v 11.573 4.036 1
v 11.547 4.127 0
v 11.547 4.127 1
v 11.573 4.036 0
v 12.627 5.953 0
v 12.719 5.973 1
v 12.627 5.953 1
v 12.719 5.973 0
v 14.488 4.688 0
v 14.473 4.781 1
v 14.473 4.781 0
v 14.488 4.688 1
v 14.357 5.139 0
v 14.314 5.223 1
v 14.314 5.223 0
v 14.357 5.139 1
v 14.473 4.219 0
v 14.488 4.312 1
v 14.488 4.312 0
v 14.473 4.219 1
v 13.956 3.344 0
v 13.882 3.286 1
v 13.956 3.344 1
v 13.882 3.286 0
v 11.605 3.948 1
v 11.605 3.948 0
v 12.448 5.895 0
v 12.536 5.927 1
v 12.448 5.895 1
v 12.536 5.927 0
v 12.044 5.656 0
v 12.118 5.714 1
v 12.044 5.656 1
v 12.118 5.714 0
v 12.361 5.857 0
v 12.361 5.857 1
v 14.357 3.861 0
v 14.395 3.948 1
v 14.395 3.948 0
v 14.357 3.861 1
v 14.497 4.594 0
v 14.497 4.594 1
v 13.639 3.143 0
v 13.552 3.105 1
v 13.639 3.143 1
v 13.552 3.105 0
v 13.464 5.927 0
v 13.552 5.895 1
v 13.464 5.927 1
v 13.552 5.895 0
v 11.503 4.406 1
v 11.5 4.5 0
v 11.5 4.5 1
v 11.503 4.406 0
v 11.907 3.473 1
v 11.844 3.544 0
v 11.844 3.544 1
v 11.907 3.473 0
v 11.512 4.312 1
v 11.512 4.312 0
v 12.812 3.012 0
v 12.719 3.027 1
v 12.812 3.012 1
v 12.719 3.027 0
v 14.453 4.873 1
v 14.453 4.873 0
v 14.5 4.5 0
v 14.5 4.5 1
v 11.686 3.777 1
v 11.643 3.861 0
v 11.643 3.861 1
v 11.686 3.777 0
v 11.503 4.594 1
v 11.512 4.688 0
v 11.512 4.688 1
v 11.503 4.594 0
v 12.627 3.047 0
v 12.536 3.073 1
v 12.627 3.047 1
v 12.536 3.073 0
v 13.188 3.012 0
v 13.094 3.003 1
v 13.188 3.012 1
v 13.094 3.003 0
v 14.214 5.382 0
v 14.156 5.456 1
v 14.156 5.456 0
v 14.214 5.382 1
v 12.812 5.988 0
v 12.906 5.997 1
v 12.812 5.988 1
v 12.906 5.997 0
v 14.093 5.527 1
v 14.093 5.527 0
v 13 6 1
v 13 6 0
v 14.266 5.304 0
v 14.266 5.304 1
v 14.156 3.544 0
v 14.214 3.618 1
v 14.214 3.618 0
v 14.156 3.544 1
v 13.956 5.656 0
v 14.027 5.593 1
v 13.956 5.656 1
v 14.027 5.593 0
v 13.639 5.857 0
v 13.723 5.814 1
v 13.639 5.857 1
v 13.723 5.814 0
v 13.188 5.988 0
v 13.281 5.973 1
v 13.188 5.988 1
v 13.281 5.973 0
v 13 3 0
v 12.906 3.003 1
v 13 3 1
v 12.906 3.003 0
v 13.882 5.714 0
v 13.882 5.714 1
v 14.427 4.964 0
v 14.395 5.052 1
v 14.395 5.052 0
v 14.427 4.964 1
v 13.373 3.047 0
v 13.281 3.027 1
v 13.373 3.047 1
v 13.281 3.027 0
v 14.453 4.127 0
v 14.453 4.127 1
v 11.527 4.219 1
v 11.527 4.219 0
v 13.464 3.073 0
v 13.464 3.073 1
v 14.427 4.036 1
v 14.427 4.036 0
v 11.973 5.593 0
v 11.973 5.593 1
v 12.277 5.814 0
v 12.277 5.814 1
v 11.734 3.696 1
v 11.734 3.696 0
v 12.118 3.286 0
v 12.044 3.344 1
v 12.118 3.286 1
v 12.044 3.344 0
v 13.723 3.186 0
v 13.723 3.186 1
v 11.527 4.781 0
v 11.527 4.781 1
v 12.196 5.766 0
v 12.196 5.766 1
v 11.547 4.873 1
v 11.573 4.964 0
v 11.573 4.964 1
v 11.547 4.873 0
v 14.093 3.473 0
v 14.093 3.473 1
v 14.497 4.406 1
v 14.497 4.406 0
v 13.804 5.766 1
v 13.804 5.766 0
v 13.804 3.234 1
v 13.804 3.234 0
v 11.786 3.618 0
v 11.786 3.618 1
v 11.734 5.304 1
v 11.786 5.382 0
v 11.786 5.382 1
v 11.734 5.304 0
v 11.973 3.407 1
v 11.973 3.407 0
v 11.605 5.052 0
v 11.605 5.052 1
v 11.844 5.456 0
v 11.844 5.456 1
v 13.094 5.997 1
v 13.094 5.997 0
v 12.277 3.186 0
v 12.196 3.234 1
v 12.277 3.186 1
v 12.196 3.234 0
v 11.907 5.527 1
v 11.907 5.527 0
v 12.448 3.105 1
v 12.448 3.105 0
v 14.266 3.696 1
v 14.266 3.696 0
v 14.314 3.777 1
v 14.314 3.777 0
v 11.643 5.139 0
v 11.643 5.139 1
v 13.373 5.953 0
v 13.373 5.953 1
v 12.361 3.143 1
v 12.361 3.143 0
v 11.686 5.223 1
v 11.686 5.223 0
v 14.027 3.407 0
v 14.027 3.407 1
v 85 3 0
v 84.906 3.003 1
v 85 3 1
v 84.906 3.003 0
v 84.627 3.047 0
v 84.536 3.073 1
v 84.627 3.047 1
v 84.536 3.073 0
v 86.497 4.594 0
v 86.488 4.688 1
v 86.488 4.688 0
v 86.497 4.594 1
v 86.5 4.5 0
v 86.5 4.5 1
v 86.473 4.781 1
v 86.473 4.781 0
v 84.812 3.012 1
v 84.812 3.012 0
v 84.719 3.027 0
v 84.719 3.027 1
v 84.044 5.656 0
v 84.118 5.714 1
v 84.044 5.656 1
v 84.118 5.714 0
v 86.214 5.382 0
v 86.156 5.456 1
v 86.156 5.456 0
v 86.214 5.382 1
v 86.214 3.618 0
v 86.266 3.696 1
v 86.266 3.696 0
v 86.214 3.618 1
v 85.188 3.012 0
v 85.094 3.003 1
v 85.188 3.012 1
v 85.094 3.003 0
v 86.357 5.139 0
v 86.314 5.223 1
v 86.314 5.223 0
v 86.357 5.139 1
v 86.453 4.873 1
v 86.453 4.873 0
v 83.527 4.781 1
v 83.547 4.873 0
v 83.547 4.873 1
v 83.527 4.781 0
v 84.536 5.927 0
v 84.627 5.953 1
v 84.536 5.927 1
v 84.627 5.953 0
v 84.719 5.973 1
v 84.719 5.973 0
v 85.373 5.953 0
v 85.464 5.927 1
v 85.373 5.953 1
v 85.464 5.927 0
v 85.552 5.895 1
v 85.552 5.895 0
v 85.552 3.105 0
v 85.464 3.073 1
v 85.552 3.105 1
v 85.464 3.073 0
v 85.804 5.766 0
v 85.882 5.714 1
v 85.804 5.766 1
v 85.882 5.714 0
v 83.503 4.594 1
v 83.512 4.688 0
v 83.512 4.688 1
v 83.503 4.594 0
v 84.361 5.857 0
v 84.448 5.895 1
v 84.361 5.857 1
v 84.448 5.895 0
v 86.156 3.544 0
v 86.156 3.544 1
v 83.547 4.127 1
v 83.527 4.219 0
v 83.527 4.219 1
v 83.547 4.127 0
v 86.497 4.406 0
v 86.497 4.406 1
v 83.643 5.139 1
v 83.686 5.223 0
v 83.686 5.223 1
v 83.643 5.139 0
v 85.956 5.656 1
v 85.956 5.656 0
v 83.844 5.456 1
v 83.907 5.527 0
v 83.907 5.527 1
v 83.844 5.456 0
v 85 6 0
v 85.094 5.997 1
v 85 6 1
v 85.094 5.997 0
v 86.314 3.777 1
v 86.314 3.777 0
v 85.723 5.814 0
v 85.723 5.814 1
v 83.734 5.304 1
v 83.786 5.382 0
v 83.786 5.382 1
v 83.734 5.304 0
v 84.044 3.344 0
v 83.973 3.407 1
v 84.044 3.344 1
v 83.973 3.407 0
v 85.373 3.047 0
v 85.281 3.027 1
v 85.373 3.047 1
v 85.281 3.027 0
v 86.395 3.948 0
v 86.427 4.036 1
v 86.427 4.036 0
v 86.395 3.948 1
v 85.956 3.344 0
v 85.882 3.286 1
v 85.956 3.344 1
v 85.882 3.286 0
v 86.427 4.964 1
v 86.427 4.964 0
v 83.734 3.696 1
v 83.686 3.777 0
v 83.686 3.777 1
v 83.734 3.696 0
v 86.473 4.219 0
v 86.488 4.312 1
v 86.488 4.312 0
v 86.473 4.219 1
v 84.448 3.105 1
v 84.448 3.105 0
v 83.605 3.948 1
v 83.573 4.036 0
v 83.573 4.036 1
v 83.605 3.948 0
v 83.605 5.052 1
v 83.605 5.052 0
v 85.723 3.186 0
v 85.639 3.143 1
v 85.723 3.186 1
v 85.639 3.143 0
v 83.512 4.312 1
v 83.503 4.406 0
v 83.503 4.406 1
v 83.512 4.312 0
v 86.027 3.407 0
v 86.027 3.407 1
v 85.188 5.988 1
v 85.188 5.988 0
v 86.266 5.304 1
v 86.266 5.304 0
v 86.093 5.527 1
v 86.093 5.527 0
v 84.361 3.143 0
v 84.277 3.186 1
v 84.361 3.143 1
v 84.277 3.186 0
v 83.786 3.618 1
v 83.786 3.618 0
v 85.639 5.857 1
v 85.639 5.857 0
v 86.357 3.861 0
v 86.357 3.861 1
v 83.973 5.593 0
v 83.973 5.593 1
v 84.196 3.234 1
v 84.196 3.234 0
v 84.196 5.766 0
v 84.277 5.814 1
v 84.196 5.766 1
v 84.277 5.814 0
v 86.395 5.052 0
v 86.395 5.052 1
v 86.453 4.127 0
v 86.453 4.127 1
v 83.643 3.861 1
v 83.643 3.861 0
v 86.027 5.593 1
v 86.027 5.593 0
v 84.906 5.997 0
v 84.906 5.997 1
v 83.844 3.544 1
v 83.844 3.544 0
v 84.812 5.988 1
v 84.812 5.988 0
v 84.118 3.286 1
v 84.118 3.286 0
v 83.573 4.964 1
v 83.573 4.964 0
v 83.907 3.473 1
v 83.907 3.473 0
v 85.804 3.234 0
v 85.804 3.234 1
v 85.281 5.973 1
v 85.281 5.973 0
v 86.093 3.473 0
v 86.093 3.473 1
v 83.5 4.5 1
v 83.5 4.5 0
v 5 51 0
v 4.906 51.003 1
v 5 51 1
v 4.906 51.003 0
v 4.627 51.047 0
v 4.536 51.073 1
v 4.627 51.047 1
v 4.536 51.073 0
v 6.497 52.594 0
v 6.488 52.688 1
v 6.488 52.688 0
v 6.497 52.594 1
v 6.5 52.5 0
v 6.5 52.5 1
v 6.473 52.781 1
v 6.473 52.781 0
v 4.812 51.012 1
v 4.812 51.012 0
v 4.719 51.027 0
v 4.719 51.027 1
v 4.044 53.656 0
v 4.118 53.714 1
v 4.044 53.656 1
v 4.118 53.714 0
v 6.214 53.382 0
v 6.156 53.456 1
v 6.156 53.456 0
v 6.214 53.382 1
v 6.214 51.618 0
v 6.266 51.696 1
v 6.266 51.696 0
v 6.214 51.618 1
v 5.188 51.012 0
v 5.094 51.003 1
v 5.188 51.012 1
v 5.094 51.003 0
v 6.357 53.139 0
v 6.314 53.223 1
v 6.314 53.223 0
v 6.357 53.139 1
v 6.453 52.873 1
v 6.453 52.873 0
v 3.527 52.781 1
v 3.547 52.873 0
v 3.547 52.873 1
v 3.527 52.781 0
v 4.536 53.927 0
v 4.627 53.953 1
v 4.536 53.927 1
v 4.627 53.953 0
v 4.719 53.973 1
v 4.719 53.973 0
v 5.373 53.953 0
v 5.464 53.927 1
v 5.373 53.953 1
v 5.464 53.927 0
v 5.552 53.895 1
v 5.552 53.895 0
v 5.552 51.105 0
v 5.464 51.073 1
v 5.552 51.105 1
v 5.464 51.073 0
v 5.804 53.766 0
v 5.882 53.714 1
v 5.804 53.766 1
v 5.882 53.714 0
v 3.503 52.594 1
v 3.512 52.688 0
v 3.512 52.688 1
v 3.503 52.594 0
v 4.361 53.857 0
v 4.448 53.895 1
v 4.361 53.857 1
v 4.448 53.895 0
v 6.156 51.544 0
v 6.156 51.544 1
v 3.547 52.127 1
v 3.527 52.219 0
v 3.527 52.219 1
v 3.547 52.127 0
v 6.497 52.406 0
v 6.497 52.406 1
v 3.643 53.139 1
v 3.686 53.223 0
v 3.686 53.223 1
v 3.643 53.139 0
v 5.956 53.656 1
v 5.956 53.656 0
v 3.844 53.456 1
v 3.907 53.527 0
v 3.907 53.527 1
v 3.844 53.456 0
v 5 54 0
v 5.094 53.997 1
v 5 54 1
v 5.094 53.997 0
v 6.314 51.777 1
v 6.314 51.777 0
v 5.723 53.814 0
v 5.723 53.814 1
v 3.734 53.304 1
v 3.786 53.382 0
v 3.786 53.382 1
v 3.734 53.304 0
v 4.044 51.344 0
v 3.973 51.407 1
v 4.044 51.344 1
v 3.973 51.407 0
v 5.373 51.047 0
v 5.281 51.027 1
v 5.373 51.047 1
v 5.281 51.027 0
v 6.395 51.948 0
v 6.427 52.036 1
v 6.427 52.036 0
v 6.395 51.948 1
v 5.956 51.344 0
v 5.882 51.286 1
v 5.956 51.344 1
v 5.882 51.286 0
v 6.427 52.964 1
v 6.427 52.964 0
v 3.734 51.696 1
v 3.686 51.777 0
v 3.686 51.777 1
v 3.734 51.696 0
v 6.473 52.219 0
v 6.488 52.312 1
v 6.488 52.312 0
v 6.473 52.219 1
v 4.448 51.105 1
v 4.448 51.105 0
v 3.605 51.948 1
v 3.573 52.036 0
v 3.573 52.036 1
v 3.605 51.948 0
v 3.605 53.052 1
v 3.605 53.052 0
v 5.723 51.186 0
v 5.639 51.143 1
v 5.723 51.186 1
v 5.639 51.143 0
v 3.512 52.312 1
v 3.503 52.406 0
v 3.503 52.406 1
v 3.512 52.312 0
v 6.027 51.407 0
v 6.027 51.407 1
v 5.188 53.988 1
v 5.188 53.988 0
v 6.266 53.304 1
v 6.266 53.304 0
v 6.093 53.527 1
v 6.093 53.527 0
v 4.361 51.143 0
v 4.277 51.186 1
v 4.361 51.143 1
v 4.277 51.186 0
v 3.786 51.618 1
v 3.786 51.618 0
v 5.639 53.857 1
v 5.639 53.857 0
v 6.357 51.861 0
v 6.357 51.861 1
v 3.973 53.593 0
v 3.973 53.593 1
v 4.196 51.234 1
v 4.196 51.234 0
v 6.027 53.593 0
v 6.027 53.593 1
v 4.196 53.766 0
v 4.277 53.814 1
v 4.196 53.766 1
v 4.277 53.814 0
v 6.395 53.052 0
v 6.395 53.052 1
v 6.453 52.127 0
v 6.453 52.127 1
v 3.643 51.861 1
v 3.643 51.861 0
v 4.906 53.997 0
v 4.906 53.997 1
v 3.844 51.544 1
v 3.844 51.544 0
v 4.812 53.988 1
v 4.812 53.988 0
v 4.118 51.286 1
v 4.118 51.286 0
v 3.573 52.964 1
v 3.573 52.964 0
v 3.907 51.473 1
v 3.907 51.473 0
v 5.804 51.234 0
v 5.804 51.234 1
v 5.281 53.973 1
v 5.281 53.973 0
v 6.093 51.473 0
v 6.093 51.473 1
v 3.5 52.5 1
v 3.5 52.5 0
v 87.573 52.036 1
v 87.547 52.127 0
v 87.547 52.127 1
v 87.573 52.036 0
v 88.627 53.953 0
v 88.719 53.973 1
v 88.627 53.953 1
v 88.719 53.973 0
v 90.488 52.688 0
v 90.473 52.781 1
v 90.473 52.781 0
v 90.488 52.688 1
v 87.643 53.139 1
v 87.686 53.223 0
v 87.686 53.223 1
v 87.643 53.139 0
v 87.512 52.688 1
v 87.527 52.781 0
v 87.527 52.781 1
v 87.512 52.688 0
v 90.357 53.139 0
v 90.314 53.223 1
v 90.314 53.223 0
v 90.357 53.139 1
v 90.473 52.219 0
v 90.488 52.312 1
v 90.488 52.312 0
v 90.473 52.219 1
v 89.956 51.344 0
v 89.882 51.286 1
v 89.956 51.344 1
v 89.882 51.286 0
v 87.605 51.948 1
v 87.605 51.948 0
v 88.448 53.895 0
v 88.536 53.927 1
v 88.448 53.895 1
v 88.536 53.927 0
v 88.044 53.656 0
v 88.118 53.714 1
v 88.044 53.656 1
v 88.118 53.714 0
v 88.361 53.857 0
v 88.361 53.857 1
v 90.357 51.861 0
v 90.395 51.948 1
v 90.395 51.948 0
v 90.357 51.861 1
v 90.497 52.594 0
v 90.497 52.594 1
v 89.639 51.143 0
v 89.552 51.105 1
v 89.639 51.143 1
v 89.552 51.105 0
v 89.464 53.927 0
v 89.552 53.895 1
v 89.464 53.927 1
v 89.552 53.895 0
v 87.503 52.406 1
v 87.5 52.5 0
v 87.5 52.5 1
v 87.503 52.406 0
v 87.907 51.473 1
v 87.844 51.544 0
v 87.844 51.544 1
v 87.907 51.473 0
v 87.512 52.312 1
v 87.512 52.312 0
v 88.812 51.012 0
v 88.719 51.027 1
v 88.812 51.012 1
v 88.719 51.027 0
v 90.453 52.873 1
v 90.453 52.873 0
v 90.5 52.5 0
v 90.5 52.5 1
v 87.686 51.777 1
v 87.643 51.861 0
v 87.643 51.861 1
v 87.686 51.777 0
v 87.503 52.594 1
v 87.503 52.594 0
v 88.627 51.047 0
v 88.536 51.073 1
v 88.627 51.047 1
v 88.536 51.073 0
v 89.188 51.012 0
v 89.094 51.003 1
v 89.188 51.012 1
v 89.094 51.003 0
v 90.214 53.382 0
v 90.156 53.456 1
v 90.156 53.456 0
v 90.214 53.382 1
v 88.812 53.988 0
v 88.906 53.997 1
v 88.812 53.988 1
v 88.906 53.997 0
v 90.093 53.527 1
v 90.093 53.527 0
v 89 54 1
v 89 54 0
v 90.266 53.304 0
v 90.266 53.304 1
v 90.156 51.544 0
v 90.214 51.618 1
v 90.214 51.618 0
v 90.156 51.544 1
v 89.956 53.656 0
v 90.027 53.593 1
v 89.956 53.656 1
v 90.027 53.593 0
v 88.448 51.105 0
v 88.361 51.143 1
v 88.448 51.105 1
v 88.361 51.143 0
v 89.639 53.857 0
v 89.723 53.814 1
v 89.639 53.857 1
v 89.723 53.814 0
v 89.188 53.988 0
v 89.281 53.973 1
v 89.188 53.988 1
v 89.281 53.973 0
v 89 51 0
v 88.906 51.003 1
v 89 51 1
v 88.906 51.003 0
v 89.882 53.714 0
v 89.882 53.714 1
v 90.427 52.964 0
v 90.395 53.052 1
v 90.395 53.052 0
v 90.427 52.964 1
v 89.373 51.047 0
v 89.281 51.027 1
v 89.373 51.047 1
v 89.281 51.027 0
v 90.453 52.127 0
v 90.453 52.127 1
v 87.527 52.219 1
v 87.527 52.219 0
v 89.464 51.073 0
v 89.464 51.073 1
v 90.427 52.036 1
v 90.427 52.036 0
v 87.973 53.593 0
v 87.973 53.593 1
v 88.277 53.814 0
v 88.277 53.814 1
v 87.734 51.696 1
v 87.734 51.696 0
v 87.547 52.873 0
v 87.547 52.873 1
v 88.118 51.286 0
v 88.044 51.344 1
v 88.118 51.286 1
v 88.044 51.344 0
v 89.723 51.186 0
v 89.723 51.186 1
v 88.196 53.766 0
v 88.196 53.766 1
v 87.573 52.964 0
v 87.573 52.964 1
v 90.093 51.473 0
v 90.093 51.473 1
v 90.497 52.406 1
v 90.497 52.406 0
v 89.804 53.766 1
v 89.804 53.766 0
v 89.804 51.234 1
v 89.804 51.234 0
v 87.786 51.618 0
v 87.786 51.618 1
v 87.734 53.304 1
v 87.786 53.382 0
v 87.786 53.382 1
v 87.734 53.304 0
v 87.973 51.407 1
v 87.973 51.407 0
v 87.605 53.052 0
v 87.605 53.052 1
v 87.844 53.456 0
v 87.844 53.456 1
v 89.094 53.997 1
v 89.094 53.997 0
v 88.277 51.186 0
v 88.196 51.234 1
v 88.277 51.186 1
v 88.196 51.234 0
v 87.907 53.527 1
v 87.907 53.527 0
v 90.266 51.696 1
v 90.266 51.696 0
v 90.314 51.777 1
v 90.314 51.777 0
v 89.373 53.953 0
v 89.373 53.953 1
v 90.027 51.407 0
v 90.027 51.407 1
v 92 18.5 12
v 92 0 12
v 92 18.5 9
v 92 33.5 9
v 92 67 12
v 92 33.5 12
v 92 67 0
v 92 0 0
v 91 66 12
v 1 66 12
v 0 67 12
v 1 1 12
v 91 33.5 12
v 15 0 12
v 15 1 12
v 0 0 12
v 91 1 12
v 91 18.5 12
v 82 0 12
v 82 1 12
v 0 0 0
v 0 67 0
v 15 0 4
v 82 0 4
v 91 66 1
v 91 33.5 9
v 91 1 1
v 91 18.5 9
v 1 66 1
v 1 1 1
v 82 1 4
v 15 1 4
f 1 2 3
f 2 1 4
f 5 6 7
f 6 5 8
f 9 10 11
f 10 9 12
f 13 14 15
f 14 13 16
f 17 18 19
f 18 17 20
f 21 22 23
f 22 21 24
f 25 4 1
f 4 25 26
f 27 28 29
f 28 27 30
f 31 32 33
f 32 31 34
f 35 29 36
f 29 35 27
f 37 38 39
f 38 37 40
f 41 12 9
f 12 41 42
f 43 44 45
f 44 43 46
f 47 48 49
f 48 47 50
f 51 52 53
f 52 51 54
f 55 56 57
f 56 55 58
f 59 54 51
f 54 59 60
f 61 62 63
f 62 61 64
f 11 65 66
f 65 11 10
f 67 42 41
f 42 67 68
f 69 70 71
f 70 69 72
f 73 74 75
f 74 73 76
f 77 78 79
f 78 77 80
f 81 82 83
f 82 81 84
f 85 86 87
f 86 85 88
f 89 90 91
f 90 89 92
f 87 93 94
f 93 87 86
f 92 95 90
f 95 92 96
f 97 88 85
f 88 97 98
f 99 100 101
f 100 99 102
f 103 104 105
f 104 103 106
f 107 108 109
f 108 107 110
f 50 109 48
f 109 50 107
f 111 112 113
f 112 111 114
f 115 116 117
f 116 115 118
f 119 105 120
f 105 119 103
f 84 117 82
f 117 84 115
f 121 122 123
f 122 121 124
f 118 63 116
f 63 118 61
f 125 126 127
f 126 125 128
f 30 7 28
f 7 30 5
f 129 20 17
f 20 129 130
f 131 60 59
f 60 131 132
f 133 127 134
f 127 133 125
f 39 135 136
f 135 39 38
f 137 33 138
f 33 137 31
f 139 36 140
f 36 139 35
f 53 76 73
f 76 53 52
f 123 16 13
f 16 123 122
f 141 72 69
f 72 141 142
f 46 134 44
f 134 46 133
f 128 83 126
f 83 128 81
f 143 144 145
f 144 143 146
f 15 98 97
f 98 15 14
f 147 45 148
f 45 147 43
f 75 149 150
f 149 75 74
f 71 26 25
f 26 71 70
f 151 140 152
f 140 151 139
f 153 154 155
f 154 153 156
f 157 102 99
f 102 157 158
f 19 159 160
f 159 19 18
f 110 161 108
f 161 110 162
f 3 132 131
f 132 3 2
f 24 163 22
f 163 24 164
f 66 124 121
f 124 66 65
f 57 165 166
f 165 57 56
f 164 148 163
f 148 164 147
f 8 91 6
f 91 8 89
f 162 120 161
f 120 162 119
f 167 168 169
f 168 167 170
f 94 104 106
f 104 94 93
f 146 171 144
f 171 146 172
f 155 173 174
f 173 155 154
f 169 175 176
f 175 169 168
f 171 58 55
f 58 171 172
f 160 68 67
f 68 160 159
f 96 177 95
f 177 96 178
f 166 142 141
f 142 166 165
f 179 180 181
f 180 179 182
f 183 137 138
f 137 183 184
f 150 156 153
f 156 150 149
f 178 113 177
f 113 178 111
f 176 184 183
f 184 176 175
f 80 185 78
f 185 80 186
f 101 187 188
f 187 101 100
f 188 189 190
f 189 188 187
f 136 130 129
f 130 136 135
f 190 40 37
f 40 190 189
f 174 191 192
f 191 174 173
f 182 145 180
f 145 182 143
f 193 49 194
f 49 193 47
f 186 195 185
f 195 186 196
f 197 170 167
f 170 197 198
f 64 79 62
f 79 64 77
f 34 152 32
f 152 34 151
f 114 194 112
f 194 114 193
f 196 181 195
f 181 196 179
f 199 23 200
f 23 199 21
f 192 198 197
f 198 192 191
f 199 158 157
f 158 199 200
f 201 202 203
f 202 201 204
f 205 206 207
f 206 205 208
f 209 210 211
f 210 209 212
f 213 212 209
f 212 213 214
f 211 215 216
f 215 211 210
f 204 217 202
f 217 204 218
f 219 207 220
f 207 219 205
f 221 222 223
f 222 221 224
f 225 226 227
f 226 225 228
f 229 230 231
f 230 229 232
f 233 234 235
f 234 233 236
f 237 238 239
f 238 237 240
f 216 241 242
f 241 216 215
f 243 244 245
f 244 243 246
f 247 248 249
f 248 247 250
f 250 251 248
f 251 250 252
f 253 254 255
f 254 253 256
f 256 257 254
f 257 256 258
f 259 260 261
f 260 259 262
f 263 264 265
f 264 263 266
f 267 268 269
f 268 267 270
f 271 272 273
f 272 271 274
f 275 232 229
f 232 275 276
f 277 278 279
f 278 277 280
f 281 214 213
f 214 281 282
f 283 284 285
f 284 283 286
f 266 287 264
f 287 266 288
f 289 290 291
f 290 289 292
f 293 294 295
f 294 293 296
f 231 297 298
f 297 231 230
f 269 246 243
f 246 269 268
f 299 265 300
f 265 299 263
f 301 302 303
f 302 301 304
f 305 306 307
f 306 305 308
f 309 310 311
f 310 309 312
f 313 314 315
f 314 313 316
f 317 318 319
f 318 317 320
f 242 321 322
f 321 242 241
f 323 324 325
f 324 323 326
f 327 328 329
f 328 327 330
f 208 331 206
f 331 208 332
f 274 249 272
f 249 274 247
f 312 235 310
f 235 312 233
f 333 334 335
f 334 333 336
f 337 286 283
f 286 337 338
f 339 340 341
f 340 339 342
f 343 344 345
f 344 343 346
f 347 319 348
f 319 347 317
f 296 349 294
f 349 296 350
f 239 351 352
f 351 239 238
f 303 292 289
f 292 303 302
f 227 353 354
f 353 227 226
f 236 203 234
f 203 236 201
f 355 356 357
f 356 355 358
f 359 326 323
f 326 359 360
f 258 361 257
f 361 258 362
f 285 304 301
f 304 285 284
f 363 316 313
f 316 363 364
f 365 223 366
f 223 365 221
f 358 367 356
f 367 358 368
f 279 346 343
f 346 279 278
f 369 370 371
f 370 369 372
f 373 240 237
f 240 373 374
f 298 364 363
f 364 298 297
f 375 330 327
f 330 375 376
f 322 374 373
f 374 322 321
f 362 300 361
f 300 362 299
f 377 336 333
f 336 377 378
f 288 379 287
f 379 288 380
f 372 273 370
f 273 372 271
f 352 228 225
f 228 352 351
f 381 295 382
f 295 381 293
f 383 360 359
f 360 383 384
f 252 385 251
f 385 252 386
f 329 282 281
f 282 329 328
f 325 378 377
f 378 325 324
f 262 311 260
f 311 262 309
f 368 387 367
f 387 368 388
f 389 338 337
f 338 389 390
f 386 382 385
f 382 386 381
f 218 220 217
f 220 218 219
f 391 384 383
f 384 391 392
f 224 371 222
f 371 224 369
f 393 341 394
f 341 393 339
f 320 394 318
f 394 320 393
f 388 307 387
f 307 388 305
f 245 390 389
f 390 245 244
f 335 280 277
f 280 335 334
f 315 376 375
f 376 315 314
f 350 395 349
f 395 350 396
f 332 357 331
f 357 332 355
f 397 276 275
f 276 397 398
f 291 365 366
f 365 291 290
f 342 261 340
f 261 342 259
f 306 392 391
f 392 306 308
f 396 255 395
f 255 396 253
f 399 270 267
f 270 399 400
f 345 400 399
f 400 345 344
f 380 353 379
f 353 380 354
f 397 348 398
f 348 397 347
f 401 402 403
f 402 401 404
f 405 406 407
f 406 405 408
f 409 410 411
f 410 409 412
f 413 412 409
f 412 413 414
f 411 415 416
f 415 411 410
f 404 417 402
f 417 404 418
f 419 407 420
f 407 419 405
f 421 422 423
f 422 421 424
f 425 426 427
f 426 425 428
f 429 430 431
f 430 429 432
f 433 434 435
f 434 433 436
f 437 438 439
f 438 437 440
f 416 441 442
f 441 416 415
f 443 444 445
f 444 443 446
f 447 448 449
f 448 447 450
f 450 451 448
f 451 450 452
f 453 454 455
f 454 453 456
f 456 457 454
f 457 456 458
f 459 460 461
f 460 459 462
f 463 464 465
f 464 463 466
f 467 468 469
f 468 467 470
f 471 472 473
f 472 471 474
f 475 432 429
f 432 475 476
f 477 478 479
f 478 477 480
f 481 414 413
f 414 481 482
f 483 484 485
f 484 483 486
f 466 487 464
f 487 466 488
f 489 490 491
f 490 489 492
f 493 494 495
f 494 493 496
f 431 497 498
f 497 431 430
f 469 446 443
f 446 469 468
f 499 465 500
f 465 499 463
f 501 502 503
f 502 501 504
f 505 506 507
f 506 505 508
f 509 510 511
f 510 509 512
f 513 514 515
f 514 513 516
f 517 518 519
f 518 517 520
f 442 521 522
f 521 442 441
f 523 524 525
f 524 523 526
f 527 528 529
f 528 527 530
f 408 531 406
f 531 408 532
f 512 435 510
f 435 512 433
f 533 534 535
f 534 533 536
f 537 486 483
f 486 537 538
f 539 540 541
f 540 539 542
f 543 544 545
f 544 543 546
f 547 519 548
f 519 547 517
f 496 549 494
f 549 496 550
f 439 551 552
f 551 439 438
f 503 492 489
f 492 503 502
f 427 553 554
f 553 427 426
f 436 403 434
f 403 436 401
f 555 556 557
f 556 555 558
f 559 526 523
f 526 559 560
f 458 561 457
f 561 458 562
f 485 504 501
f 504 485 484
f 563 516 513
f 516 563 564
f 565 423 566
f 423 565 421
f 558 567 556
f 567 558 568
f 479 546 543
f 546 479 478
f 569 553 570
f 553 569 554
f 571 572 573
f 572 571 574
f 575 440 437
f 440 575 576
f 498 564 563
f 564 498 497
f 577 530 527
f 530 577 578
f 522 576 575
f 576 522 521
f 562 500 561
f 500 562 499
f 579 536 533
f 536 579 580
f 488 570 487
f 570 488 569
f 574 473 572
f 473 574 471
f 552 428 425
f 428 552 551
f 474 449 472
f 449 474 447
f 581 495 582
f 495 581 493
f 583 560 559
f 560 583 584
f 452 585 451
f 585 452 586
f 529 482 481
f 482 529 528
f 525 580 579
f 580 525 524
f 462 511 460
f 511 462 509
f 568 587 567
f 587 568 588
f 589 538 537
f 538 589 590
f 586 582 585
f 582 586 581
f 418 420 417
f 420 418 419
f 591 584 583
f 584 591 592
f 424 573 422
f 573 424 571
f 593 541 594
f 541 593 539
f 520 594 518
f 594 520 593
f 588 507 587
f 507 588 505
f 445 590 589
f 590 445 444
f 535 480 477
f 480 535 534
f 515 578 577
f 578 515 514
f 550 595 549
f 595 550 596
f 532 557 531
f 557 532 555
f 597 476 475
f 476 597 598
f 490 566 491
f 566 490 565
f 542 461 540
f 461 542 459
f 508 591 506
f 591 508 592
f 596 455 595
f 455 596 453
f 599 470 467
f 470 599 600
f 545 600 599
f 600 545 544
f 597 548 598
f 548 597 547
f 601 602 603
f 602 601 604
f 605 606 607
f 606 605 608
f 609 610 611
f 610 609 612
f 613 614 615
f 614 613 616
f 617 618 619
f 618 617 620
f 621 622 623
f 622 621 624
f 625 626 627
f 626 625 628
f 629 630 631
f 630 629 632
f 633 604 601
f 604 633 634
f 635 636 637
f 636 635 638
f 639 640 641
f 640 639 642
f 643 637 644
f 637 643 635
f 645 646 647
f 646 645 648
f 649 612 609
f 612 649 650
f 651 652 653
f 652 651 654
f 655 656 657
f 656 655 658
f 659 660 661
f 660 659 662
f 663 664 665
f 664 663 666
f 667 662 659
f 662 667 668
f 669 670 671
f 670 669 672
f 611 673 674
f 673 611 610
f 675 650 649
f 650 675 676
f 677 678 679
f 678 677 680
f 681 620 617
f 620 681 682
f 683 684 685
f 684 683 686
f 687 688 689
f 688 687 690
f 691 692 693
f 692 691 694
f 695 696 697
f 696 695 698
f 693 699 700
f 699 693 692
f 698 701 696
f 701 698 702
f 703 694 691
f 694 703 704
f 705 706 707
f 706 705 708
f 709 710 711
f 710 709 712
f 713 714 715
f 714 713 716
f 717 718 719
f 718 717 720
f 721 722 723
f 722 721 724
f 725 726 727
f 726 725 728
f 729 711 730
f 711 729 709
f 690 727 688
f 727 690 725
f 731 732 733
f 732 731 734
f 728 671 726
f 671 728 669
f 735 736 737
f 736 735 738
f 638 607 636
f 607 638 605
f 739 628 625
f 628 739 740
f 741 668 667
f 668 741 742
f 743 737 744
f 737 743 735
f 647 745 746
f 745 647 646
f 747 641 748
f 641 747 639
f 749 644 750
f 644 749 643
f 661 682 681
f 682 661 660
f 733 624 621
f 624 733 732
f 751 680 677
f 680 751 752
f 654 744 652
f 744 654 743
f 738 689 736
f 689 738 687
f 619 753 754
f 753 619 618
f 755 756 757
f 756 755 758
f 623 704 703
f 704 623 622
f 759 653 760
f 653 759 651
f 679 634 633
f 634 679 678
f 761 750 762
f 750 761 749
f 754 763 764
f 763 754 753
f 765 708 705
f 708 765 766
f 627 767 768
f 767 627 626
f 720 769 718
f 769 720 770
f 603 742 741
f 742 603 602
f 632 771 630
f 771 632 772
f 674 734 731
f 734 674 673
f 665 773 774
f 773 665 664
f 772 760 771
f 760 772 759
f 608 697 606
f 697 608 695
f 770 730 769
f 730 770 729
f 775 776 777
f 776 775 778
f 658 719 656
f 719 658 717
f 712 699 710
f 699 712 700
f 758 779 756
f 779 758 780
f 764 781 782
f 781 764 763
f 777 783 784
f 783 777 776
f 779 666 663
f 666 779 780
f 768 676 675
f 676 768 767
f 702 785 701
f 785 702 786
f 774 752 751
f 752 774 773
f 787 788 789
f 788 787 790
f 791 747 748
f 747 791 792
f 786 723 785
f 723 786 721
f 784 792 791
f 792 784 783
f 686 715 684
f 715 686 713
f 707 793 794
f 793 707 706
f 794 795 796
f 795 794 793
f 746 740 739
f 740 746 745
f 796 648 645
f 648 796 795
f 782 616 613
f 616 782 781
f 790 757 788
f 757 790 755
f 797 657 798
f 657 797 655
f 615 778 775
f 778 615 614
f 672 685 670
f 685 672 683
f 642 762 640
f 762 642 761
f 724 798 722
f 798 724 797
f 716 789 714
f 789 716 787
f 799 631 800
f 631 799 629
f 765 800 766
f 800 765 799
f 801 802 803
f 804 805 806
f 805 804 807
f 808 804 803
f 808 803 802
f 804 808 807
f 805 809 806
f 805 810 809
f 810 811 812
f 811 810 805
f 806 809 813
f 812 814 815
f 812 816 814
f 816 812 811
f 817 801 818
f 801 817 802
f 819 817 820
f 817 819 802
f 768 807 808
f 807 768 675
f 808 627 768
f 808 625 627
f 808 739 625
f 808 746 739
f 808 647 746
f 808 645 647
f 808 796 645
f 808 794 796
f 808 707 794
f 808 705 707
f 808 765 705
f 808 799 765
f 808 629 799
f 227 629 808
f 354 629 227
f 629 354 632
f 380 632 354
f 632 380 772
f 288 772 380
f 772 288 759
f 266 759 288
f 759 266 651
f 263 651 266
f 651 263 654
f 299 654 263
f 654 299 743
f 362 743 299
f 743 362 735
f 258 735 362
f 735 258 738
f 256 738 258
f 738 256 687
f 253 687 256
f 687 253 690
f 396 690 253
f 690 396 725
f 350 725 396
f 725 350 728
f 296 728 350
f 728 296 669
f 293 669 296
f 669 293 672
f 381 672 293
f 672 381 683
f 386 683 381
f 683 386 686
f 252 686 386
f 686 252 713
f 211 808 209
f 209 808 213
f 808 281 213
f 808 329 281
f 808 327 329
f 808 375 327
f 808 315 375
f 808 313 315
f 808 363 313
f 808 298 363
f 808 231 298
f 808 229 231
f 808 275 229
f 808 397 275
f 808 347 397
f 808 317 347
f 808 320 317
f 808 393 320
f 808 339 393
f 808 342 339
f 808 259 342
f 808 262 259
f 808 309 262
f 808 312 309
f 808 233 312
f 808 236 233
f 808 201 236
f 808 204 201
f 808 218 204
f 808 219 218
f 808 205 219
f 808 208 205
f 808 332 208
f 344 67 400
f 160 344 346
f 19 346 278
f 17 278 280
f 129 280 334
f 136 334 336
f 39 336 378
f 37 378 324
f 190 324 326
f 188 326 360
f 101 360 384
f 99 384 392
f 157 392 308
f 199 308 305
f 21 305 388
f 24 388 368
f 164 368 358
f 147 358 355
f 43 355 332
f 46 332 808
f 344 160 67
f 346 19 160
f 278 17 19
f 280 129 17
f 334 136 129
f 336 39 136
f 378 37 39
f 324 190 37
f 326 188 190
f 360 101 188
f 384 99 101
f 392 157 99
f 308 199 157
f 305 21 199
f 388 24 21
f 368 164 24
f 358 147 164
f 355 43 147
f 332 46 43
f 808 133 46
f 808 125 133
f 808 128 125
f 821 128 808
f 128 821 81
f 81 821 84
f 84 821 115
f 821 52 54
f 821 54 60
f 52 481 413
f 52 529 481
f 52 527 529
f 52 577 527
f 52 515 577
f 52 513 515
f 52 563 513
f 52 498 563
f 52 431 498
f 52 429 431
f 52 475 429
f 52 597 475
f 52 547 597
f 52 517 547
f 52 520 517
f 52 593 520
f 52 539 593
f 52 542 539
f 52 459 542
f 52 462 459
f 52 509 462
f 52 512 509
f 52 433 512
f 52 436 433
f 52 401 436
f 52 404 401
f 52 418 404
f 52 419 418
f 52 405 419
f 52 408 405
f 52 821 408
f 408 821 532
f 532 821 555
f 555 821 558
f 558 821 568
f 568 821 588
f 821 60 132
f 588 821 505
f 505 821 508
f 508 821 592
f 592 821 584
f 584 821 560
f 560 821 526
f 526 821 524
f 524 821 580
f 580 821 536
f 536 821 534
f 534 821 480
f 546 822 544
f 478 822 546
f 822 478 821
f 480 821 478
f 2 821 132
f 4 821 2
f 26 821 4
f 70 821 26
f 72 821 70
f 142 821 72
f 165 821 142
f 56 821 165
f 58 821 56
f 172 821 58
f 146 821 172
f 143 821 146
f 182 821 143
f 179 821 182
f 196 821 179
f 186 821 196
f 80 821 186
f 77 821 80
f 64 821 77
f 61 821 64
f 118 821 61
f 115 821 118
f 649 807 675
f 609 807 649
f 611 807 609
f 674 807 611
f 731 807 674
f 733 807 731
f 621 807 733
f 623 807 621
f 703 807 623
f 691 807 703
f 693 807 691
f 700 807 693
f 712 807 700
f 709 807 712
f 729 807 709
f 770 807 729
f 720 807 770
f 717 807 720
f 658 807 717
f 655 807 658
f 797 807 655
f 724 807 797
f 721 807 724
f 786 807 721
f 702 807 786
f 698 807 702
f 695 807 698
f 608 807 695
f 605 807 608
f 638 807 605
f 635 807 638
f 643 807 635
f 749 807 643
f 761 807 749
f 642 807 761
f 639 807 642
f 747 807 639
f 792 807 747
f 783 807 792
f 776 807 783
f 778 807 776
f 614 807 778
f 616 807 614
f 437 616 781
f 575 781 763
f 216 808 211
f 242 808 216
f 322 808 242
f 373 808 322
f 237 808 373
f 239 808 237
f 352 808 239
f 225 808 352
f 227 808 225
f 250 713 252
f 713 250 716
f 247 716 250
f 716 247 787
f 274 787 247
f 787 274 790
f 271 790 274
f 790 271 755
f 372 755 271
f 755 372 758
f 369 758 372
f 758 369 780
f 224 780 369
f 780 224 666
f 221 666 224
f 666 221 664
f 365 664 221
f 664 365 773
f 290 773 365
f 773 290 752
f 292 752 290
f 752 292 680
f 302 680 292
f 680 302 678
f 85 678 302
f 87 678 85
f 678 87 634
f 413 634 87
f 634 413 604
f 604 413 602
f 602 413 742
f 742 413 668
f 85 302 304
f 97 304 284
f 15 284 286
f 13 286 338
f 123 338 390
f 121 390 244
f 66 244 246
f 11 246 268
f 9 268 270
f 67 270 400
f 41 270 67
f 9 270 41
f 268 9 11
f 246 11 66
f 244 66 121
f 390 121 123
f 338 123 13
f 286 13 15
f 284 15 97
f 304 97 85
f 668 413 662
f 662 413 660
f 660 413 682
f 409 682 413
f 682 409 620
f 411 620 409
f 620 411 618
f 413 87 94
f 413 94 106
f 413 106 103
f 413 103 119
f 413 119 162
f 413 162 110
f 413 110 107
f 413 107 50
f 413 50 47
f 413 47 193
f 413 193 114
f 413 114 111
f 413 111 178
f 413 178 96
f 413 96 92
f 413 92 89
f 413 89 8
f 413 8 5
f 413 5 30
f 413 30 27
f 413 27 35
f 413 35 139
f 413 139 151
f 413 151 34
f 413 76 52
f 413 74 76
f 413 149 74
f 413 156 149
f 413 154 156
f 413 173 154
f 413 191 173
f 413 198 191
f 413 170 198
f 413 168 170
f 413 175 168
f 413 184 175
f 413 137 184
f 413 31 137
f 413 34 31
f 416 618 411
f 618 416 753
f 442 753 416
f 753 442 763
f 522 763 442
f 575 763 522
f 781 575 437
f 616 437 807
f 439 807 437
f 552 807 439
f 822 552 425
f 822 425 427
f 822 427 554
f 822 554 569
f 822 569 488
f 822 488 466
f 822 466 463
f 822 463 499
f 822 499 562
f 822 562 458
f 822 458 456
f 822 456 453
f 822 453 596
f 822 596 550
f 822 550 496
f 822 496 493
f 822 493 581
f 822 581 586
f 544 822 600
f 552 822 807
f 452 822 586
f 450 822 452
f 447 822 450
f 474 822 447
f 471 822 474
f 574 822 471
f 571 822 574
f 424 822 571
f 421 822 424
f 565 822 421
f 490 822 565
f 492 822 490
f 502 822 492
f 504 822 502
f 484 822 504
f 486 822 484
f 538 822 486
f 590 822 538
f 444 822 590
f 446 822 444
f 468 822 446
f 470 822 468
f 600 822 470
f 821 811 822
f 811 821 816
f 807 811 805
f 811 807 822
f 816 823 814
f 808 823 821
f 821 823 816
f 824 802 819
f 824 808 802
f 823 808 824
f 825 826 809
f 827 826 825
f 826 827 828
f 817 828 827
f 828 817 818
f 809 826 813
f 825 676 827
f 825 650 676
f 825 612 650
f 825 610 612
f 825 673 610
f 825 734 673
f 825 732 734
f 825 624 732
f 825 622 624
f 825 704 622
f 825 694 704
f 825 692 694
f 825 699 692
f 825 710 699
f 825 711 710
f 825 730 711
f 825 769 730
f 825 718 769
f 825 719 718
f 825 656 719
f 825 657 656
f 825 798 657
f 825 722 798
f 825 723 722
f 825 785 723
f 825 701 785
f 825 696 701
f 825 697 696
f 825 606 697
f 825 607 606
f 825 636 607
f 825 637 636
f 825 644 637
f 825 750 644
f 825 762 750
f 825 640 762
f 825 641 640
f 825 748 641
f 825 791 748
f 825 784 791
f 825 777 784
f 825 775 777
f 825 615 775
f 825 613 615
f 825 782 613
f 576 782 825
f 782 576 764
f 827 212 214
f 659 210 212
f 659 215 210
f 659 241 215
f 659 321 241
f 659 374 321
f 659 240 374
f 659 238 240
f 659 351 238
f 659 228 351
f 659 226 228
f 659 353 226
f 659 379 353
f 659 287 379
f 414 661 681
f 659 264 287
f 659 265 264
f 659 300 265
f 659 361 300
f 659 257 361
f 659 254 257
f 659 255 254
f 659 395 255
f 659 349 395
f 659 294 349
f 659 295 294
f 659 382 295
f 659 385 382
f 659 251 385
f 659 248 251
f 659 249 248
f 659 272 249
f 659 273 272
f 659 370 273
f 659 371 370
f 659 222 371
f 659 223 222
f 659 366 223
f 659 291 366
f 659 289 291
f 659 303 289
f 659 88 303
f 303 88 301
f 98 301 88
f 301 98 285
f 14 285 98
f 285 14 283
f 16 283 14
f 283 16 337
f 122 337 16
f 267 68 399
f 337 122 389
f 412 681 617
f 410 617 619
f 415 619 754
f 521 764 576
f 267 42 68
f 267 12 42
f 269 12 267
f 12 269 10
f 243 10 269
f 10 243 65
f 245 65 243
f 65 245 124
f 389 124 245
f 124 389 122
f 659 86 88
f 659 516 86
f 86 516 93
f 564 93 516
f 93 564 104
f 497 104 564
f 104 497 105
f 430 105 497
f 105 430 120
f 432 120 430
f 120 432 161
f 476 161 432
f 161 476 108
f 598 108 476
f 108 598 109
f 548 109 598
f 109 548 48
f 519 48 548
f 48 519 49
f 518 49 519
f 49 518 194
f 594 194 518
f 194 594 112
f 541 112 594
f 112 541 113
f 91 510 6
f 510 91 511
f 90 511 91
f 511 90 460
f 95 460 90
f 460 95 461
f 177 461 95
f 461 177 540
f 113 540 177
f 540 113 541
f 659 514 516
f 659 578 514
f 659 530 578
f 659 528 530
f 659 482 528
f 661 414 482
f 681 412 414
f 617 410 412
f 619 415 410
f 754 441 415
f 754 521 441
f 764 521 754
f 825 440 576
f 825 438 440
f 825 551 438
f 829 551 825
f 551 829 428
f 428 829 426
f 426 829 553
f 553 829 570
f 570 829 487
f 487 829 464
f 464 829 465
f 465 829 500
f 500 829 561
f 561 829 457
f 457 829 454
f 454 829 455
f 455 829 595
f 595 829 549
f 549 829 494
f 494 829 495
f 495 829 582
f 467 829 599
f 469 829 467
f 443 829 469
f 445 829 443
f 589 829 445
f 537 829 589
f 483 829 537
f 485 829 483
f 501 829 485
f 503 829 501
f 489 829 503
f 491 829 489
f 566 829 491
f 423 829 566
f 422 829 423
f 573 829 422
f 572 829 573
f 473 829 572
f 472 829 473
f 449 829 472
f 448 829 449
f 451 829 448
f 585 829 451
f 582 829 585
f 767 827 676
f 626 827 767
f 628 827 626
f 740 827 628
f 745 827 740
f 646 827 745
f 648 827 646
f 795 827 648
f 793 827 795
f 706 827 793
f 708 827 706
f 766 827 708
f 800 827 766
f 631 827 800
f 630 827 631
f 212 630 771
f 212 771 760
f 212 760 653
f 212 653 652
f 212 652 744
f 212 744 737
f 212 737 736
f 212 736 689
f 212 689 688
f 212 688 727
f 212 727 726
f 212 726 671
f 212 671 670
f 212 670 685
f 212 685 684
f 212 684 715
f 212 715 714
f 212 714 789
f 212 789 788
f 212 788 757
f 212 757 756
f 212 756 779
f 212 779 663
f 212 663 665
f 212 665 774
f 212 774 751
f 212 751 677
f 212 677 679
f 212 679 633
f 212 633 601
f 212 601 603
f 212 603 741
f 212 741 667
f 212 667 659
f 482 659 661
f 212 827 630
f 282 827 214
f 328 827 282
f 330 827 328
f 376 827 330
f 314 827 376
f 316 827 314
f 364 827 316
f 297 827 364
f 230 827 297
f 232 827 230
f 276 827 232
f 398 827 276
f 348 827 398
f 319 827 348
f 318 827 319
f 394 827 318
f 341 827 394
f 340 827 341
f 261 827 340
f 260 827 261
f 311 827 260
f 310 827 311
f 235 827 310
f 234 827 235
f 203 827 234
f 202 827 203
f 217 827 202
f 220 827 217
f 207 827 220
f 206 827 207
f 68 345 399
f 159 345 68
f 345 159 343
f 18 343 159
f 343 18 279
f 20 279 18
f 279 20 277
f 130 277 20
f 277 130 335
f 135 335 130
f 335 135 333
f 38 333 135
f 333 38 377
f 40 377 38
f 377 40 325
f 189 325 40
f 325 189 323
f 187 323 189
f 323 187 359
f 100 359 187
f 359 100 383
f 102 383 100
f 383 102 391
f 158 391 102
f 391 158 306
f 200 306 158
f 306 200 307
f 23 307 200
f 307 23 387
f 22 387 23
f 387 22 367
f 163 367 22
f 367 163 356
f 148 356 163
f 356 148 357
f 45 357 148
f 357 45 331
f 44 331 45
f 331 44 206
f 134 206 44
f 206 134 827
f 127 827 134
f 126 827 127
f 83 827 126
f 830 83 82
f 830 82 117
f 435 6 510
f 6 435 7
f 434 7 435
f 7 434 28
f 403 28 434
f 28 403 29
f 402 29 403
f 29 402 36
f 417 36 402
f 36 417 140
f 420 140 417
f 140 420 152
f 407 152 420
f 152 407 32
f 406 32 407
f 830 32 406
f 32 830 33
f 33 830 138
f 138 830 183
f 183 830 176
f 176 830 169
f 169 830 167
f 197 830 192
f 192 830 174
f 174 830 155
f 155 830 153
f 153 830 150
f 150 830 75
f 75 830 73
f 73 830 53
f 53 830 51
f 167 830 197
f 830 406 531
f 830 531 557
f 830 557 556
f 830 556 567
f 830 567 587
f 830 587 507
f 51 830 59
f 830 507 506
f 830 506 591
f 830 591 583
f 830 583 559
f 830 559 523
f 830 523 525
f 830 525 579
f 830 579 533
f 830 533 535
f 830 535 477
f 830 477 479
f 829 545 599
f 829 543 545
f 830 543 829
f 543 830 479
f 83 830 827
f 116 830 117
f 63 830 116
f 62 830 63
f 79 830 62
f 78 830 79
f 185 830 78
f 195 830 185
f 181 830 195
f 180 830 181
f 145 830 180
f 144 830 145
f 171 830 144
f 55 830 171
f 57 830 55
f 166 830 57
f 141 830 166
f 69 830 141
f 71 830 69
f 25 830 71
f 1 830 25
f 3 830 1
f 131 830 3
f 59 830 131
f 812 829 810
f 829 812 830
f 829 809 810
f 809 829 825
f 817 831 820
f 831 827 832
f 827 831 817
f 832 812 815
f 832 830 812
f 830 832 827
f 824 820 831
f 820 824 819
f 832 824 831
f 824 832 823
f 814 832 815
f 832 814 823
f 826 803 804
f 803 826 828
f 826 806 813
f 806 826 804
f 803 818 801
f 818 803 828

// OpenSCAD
//LCD_HDMI_BOX2_electronics_box

$fn=100;
wall_thickness=2;
inside_width=90;
inside_length=65;
inside_height=10;
box_height=10+wall_thickness;
box_width=90+wall_thickness;
box_length=65+wall_thickness;
top_left_x=wall_thickness+11;
top_left_y=wall_thickness+2.5;
top_right_x=top_left_x+72;

module box() {
    difference() {
        cube([box_width,box_length,box_height]);
        translate([1,1,1])
          cube([inside_width,inside_length,inside_height+5]);
    }
}

module mountingHoles() {
    //top left
    translate([top_left_x,top_left_y,-1]) cylinder(5,d=3);
    //top right
    translate([top_left_x+72,top_left_y,-1]) cylinder(5,d=3);
    //bottom left
     translate([wall_thickness+3,top_left_y+48,-1]) cylinder(5,d=3);
    //bottom right
    translate([wall_thickness+87,top_left_y+48,-1]) cylinder(5,d=3);
}

module ports() {
    translate([top_left_x+2,-3,4])
    cube([67,10,15]);
}

module switchhole () {
    translate([box_width-5,box_length/2-15,9])
    cube([15,15,5]);
}


difference() {
    box();
    mountingHoles();
    ports();
    switchhole();
}
